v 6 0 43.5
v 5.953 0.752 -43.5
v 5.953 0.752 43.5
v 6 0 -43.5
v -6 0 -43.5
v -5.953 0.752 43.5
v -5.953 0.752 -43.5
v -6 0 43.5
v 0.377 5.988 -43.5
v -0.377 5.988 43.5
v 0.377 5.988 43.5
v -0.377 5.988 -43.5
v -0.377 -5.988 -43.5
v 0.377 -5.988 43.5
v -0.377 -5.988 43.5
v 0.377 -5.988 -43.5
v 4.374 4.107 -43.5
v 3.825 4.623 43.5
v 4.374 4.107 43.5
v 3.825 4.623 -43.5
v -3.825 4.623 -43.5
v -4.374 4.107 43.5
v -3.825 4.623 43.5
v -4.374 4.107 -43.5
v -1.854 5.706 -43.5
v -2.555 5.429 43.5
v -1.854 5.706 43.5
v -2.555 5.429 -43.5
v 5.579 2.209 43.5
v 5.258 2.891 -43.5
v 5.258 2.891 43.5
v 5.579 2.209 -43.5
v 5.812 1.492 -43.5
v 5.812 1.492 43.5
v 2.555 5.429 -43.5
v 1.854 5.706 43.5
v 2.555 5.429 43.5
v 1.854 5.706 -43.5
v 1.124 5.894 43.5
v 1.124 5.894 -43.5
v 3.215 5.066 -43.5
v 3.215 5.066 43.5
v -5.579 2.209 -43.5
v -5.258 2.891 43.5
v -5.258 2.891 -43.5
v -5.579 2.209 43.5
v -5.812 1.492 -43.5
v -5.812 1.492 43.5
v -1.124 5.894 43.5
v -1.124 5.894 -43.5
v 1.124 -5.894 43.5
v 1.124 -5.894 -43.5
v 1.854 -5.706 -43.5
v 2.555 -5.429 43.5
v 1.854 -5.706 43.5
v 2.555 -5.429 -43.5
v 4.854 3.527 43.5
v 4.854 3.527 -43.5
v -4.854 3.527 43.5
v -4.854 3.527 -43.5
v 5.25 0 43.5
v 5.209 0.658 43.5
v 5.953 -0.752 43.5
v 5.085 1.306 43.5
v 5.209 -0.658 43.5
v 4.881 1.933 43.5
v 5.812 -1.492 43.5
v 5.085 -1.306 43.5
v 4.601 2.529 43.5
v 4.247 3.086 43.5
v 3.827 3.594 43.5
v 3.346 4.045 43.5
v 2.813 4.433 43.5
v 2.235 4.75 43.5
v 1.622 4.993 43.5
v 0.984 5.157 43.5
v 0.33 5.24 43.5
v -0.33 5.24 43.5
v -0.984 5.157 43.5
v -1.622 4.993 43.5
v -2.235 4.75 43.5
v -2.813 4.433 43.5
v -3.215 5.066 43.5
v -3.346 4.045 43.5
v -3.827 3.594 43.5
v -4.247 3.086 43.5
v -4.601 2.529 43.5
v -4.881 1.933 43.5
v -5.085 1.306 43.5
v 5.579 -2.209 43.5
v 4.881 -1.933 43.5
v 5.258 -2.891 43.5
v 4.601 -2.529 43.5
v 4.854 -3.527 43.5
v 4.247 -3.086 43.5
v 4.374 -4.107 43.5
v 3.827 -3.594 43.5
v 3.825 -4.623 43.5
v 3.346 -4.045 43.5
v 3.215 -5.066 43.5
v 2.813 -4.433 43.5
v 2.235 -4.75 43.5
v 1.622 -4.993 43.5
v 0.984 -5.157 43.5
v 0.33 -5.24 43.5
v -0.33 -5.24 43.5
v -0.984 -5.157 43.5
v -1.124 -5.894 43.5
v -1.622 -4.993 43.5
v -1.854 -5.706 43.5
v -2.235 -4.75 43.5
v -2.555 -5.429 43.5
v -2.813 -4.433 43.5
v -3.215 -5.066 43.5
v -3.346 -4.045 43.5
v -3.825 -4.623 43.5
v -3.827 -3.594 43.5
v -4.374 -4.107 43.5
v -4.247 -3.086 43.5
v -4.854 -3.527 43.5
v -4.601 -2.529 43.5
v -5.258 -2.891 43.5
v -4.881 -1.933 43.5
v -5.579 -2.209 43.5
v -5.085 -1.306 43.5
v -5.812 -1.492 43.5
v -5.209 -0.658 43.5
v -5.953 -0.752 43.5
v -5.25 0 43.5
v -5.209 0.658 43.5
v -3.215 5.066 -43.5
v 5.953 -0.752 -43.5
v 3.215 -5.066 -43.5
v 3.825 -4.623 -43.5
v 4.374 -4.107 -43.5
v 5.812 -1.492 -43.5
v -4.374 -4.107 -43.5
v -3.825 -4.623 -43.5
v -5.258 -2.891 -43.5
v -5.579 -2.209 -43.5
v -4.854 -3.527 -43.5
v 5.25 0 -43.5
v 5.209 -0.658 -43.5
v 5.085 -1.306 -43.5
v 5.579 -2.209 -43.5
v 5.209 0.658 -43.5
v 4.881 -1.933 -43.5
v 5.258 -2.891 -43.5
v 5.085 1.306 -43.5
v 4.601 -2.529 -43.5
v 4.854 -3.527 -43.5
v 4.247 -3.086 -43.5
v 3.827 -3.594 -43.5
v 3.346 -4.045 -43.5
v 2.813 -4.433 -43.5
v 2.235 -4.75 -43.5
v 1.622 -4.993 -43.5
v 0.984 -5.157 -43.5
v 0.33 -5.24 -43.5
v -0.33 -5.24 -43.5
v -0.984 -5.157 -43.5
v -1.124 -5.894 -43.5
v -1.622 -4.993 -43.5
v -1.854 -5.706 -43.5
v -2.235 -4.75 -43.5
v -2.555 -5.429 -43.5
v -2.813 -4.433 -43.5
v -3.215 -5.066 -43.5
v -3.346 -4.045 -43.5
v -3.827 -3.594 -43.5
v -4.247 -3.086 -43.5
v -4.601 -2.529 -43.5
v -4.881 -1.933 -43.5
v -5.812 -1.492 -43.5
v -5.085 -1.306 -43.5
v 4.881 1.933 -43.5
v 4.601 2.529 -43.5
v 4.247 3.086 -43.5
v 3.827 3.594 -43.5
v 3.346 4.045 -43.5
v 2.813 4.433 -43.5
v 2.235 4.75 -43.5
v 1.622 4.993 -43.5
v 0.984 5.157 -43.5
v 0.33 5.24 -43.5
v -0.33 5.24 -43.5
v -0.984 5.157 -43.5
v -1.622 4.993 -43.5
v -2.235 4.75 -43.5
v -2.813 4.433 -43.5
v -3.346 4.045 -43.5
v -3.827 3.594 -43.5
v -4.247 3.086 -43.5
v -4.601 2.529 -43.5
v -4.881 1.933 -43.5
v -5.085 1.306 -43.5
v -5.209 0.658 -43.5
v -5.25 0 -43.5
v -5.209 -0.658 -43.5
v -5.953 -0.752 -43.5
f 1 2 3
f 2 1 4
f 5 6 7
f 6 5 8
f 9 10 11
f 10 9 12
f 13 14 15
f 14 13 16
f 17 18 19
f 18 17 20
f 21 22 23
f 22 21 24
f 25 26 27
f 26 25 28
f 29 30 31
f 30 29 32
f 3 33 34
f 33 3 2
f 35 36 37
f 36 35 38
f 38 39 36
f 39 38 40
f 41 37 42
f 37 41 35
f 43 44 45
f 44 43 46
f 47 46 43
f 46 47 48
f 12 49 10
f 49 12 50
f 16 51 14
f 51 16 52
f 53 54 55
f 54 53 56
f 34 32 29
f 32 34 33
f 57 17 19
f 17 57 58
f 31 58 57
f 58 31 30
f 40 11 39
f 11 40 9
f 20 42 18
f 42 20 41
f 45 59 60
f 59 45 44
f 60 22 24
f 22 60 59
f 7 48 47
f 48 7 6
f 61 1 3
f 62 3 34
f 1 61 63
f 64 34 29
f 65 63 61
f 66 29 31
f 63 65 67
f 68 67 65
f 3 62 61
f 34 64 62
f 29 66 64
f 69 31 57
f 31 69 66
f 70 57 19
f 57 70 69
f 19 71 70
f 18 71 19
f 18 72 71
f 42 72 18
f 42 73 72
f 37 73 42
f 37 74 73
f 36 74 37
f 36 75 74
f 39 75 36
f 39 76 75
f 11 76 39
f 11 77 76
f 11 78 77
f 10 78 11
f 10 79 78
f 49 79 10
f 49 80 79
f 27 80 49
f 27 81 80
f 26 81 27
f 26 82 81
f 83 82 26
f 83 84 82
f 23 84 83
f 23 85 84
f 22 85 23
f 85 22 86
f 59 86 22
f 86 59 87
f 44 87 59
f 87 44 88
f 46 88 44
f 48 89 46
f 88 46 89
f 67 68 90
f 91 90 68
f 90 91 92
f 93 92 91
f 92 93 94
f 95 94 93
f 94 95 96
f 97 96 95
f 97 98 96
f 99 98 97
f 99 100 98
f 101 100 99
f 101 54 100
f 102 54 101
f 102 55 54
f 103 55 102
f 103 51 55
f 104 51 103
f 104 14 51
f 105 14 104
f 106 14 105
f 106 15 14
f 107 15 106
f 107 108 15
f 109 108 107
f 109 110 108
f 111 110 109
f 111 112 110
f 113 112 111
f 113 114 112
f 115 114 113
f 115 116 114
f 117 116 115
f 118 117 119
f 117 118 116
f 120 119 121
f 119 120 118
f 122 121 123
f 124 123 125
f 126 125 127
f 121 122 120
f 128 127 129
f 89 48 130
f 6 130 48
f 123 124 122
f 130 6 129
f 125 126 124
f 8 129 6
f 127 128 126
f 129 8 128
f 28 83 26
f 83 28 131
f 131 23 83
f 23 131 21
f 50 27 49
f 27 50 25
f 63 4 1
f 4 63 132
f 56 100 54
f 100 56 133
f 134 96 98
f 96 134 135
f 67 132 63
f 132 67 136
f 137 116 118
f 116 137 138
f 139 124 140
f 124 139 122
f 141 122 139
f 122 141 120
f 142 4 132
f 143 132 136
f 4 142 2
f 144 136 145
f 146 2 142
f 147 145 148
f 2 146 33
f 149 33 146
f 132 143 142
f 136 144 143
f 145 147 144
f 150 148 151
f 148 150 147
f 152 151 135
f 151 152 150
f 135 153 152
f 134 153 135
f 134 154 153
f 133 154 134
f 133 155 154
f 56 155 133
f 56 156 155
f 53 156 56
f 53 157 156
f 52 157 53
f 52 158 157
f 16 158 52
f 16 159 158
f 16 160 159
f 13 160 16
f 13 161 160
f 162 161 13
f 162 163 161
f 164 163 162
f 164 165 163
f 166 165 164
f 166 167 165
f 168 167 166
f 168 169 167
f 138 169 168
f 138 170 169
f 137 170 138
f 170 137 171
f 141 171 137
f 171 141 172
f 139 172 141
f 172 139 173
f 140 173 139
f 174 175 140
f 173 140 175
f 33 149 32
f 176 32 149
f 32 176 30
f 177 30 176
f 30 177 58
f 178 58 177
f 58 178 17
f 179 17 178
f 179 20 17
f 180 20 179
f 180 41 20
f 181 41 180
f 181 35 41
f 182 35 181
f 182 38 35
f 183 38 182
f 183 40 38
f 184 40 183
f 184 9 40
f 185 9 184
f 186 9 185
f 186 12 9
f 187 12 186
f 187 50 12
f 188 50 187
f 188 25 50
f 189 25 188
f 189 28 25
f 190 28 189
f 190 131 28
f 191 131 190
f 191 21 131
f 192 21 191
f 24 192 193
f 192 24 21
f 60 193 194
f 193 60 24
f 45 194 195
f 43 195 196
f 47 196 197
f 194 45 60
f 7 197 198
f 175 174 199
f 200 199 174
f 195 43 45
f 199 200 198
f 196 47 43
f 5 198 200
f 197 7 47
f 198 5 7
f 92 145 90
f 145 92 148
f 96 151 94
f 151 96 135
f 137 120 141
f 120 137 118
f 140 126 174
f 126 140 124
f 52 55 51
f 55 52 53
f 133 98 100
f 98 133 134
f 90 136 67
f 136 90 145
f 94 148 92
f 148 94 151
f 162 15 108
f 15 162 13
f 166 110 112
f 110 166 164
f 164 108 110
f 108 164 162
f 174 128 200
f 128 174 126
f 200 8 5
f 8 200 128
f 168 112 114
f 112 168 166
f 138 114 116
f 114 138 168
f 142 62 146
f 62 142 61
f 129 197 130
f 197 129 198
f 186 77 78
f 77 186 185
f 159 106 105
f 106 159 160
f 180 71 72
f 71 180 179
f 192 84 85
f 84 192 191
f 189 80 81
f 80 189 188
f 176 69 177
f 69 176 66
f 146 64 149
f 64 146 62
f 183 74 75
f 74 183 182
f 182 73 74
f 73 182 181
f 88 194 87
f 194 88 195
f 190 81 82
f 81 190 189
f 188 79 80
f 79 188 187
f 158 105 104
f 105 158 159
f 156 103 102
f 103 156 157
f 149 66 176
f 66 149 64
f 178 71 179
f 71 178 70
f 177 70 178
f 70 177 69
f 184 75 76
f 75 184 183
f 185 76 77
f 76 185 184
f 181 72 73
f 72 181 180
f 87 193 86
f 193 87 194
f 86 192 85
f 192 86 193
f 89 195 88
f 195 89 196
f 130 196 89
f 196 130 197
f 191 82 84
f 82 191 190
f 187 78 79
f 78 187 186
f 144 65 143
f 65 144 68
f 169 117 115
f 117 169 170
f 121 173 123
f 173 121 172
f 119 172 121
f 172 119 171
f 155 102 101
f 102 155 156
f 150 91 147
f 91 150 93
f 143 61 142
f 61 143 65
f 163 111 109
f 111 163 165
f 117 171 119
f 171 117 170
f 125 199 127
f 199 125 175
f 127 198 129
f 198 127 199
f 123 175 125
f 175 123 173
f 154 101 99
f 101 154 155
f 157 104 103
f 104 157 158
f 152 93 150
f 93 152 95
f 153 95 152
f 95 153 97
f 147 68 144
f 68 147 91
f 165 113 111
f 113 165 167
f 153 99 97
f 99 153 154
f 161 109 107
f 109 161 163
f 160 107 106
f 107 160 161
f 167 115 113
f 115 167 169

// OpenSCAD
$fn = 50;


difference() {
	union() {
		translate(v = [0, 0, -43.5000000000]) {
			cylinder(h = 87, r = 6.0000000000);
		}
	}
	union() {
		translate(v = [0, 0, -100.0000000000]) {
			cylinder(h = 200, r = 5.2500000000);
		}
	}
}
